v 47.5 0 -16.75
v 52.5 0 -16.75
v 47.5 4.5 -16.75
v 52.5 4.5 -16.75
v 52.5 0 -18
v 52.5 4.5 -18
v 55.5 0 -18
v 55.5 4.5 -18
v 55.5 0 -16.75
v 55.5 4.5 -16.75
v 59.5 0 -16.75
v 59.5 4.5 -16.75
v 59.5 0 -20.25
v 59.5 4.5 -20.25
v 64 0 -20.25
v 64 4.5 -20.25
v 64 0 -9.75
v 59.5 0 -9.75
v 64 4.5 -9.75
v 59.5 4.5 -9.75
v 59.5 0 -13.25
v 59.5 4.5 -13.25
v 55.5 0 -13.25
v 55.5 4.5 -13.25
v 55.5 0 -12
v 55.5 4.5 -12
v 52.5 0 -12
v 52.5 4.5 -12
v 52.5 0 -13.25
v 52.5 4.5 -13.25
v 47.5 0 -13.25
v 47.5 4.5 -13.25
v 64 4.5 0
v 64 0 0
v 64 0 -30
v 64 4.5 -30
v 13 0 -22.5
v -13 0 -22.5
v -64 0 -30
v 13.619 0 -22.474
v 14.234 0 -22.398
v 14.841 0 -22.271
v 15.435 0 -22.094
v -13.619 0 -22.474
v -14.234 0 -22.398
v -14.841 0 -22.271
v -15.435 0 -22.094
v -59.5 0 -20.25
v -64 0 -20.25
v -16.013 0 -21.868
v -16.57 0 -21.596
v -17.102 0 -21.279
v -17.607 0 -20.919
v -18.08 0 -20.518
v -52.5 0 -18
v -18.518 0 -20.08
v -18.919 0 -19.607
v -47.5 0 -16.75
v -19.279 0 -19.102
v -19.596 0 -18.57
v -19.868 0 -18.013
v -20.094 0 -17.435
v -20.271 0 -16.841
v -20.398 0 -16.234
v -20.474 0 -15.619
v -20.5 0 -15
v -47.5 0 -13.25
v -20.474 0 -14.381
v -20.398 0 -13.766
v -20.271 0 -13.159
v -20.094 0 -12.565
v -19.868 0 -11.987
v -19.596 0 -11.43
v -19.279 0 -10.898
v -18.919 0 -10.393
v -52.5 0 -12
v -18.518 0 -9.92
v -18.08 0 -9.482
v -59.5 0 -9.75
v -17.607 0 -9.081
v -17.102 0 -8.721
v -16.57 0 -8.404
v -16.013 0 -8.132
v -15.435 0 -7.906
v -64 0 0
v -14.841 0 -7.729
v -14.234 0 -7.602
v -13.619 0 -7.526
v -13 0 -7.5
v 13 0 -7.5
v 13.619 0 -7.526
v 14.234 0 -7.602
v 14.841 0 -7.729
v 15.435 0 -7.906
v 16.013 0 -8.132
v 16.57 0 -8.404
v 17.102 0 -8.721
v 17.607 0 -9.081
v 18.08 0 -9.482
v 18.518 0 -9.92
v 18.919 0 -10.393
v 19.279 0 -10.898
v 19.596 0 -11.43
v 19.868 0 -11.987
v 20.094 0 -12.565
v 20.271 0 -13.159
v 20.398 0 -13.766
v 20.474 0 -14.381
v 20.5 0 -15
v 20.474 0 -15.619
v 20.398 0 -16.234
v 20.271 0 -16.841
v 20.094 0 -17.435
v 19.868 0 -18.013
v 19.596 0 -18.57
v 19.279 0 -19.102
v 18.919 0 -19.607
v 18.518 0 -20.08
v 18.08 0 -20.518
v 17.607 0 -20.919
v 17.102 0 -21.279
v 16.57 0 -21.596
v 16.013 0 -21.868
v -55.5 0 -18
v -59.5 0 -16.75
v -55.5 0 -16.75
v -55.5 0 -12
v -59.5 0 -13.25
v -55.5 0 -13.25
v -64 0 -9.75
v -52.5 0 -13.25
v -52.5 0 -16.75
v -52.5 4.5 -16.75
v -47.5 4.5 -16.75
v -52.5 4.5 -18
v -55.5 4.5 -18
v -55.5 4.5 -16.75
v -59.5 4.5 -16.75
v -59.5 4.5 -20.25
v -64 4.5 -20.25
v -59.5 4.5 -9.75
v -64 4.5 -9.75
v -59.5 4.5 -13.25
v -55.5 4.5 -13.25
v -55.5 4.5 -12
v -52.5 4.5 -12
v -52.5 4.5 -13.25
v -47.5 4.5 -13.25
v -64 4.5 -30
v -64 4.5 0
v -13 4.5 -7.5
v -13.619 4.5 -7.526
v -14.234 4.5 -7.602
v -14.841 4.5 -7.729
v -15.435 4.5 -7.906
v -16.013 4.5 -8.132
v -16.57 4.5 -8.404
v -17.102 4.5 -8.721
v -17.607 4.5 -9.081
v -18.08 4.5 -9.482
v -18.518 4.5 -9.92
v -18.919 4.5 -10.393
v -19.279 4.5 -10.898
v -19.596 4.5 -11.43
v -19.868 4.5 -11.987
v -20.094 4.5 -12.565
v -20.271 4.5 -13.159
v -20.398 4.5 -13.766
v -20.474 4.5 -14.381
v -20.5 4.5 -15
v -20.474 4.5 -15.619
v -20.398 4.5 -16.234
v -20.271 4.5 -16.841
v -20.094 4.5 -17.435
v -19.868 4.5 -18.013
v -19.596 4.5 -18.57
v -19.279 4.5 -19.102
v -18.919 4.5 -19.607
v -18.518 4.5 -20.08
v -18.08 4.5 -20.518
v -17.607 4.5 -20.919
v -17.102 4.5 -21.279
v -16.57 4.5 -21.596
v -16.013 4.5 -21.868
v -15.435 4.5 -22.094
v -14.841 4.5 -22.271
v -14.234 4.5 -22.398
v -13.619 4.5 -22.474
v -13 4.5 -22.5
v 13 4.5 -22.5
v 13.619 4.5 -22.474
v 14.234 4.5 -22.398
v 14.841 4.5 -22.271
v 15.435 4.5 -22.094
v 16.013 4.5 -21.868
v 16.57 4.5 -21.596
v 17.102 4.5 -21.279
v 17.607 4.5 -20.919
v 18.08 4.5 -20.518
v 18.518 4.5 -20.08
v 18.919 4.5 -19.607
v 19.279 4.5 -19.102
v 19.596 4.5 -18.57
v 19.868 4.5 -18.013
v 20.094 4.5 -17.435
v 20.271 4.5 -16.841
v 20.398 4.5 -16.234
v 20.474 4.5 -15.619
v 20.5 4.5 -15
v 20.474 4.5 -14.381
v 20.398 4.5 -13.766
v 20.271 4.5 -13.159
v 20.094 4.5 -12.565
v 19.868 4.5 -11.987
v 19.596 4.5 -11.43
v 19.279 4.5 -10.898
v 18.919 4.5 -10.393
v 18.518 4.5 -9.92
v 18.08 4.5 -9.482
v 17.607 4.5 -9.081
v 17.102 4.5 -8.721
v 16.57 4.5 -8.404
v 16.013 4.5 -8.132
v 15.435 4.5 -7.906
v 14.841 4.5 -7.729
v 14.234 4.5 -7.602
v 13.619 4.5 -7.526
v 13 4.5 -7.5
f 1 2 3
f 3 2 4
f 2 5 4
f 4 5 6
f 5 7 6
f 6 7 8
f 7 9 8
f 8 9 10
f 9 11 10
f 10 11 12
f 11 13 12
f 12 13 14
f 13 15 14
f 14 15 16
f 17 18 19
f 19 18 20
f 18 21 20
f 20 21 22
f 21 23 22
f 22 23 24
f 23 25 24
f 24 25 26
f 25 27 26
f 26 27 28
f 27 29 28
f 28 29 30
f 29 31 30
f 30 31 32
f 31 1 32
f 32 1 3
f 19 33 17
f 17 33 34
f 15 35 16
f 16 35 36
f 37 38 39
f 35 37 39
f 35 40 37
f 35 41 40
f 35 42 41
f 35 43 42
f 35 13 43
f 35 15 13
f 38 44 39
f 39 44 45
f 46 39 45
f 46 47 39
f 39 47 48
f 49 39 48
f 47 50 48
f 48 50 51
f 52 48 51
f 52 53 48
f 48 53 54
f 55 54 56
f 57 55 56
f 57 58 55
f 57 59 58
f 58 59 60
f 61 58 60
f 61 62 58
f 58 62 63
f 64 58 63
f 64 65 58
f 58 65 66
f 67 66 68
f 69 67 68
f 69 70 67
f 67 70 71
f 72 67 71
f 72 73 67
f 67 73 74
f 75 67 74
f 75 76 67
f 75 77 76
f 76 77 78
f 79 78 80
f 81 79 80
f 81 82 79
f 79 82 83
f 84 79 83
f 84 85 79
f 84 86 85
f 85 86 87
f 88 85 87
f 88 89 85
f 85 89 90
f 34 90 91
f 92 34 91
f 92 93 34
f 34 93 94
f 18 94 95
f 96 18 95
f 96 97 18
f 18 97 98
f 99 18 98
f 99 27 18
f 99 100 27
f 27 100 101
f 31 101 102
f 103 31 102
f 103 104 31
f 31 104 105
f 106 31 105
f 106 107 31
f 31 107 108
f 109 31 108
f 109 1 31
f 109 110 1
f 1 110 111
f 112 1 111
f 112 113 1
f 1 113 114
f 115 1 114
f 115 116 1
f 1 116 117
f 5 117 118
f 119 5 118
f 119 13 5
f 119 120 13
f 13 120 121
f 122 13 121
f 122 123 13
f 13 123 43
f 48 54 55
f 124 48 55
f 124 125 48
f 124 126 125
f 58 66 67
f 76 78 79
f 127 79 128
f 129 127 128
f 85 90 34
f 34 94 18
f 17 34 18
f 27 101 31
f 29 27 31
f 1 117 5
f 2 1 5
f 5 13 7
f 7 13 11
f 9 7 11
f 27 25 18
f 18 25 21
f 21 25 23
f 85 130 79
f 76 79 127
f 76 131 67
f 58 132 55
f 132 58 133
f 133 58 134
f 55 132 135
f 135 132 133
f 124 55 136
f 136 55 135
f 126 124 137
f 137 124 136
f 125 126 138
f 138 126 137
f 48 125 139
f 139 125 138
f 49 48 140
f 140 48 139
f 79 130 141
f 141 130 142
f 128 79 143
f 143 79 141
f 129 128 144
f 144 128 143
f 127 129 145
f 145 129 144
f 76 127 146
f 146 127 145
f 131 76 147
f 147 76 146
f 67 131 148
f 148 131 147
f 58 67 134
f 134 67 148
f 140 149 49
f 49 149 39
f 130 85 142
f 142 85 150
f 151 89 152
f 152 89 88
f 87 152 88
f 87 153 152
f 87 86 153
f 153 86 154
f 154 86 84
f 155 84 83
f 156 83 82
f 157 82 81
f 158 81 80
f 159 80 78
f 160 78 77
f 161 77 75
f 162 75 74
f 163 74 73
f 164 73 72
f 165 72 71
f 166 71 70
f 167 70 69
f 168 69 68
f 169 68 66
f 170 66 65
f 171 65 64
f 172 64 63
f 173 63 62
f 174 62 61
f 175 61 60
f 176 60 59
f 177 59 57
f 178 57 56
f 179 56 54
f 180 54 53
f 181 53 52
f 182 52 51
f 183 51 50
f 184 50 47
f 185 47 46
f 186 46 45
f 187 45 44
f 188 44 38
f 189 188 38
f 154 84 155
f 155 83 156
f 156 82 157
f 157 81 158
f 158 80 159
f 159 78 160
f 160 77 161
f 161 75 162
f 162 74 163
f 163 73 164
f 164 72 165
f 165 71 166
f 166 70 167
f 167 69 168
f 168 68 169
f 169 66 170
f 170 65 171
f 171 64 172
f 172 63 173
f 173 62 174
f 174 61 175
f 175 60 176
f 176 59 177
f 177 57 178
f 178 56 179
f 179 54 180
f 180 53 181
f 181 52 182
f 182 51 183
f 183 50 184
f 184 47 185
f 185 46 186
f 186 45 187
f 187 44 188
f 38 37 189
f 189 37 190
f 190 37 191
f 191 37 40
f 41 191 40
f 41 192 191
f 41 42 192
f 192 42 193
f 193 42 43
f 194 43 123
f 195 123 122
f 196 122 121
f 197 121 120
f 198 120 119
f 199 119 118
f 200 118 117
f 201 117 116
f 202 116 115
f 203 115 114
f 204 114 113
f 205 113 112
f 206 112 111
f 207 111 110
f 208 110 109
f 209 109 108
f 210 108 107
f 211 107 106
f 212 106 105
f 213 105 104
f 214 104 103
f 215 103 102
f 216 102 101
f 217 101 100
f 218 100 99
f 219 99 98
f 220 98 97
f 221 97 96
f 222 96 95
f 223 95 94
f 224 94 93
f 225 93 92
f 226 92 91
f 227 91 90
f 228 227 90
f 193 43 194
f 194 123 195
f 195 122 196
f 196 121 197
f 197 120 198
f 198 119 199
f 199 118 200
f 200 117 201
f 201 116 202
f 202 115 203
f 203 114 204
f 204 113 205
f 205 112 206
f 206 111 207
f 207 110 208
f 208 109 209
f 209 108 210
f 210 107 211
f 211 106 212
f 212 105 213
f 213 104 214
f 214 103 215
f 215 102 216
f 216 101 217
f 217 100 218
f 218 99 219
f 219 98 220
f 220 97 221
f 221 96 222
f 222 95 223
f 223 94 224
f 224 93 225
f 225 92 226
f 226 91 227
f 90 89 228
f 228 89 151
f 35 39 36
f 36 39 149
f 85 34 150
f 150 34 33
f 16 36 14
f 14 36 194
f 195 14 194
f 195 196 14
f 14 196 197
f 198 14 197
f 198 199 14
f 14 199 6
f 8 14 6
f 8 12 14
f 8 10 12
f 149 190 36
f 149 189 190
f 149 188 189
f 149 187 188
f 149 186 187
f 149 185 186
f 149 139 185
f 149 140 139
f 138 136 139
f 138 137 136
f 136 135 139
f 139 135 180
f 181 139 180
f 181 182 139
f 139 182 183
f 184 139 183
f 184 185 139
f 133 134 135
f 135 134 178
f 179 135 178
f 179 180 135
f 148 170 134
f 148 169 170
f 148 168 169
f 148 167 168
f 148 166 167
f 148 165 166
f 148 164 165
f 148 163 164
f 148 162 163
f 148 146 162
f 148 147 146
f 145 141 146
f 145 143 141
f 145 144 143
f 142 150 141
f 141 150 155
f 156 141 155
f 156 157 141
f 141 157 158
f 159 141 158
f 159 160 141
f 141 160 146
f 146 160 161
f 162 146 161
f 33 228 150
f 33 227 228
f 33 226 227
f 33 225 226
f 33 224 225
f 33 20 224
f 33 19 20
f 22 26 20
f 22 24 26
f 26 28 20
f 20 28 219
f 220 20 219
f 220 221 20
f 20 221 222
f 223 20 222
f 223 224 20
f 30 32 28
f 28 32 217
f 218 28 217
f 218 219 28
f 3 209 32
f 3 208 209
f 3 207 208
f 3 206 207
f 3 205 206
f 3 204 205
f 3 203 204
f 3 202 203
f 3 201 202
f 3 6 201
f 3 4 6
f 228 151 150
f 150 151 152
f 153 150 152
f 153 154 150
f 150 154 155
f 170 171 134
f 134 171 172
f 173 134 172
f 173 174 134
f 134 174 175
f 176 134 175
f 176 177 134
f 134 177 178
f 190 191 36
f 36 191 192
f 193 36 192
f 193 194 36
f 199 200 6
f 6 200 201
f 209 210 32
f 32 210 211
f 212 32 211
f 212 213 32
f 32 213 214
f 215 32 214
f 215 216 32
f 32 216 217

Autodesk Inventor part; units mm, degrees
ref_plane "YZ Plane" through (0, 0, 0) normal (1, 0, 0) x (0, 1, 0)
sketch "Sketch1" plane through (0, 0, 0) normal (0, 1, 0) x (-1, 0, 0)
  line L0 (64, 0) -> (-64, 0)
  line L1 (-64, 0) -> (-64, -30)
  line L2 (-64, -30) -> (64, -30)
  line L3 (64, -30) -> (64, 0)
  line L4 (13, -15) -> (-13, -15) construction
  line L5 (13, -7.5) -> (-13, -7.5)
  line L6 (-13, -22.5) -> (13, -22.5)
  arc A0 (13, -22.5) -> (13, -7.5) centre (13, -15) ccw
  arc A1 (-13, -7.5) -> (-13, -22.5) centre (-13, -15) ccw
  line L7 (13, -15) -> (64, -15) construction
  line L8 (0, -15) -> (0, -30) construction
  point P0 (0, 0)
  point P1 (0, 0)
  dimension "d0" = 128
  dimension "d1" = 30
  dimension "d2" = 15
  dimension "d3" = 26
extrude "Extrusion1" add sketch "Sketch1" along normal blind 4.5
sketch "Sketch2" plane through (0, 4.5, 0) normal (0, 1, 0) x (1, 0, 0)
  arc A0 (-13, 22.5) -> (-13, 7.5) centre (-13, 15) ccw construction
  line L0 (-13, 22.5) -> (13, 22.5) construction
  arc A1 (13, 7.5) -> (13, 22.5) centre (13, 15) ccw construction
  line L1 (13, 7.5) -> (-13, 7.5) construction
  line L2 (-64, 0) -> (64, 0) construction
  line L3 (64, 0) -> (64, 30) construction
  line L4 (64, 30) -> (-64, 30) construction
  line L5 (-64, 30) -> (-64, 0) construction
  line L6 (-64, 20.25) -> (-59.5, 20.25)
  line L7 (-59.5, 20.25) -> (-59.5, 16.75)
  line L8 (-59.5, 16.75) -> (-55.5, 16.75)
  line L9 (-55.5, 16.75) -> (-55.5, 18)
  line L10 (-55.5, 18) -> (-52.5, 18)
  line L11 (-52.5, 18) -> (-52.5, 16.75)
  line L12 (-52.5, 16.75) -> (-47.5, 16.75)
  line L13 (-47.5, 16.75) -> (-47.5, 13.25)
  line L14 (-47.5, 13.25) -> (-52.5, 13.25)
  line L15 (-52.5, 13.25) -> (-52.5, 12)
  line L16 (-52.5, 12) -> (-55.5, 12)
  line L17 (-55.5, 12) -> (-55.5, 13.25)
  line L18 (-55.5, 13.25) -> (-59.5, 13.25)
  line L19 (-59.5, 9.75) -> (-64, 9.75)
  line L20 (-59.5, 9.75) -> (-59.5, 13.25)
  line L21 (-64, 15) -> (-47.5, 15) construction
  line L22 (-64, 20.25) -> (-64, 9.75)
  line L23 (-64, 30) -> (-64, 0) projected
  dimension "d6" = 10.5
  dimension "d7" = 4
  dimension "d8" = 3
  dimension "d9" = 5
  dimension "d10" = 3.5
  dimension "d11" = 6
  dimension "d12" = 4.5
extrude "Extrusion2" cut sketch "Sketch2" against normal through all
mirror "Mirror1" about plane through (0, 0, 0) normal (1, 0, 0) of "Extrusion2"
ref_plane "Work Plane1" through (-13, 0, -15) normal (0, 0, 1) x (1, 0, 0)
ref_plane "Work Plane2" through (0, 2.25, 0) normal (0, 1, 0) x (-1, 0, 0)
equation "\"d16\" = 0.5 * THICKNESS"
equation "\"THICKNESS\" = 4.5"
properties part number "A8-0006"
